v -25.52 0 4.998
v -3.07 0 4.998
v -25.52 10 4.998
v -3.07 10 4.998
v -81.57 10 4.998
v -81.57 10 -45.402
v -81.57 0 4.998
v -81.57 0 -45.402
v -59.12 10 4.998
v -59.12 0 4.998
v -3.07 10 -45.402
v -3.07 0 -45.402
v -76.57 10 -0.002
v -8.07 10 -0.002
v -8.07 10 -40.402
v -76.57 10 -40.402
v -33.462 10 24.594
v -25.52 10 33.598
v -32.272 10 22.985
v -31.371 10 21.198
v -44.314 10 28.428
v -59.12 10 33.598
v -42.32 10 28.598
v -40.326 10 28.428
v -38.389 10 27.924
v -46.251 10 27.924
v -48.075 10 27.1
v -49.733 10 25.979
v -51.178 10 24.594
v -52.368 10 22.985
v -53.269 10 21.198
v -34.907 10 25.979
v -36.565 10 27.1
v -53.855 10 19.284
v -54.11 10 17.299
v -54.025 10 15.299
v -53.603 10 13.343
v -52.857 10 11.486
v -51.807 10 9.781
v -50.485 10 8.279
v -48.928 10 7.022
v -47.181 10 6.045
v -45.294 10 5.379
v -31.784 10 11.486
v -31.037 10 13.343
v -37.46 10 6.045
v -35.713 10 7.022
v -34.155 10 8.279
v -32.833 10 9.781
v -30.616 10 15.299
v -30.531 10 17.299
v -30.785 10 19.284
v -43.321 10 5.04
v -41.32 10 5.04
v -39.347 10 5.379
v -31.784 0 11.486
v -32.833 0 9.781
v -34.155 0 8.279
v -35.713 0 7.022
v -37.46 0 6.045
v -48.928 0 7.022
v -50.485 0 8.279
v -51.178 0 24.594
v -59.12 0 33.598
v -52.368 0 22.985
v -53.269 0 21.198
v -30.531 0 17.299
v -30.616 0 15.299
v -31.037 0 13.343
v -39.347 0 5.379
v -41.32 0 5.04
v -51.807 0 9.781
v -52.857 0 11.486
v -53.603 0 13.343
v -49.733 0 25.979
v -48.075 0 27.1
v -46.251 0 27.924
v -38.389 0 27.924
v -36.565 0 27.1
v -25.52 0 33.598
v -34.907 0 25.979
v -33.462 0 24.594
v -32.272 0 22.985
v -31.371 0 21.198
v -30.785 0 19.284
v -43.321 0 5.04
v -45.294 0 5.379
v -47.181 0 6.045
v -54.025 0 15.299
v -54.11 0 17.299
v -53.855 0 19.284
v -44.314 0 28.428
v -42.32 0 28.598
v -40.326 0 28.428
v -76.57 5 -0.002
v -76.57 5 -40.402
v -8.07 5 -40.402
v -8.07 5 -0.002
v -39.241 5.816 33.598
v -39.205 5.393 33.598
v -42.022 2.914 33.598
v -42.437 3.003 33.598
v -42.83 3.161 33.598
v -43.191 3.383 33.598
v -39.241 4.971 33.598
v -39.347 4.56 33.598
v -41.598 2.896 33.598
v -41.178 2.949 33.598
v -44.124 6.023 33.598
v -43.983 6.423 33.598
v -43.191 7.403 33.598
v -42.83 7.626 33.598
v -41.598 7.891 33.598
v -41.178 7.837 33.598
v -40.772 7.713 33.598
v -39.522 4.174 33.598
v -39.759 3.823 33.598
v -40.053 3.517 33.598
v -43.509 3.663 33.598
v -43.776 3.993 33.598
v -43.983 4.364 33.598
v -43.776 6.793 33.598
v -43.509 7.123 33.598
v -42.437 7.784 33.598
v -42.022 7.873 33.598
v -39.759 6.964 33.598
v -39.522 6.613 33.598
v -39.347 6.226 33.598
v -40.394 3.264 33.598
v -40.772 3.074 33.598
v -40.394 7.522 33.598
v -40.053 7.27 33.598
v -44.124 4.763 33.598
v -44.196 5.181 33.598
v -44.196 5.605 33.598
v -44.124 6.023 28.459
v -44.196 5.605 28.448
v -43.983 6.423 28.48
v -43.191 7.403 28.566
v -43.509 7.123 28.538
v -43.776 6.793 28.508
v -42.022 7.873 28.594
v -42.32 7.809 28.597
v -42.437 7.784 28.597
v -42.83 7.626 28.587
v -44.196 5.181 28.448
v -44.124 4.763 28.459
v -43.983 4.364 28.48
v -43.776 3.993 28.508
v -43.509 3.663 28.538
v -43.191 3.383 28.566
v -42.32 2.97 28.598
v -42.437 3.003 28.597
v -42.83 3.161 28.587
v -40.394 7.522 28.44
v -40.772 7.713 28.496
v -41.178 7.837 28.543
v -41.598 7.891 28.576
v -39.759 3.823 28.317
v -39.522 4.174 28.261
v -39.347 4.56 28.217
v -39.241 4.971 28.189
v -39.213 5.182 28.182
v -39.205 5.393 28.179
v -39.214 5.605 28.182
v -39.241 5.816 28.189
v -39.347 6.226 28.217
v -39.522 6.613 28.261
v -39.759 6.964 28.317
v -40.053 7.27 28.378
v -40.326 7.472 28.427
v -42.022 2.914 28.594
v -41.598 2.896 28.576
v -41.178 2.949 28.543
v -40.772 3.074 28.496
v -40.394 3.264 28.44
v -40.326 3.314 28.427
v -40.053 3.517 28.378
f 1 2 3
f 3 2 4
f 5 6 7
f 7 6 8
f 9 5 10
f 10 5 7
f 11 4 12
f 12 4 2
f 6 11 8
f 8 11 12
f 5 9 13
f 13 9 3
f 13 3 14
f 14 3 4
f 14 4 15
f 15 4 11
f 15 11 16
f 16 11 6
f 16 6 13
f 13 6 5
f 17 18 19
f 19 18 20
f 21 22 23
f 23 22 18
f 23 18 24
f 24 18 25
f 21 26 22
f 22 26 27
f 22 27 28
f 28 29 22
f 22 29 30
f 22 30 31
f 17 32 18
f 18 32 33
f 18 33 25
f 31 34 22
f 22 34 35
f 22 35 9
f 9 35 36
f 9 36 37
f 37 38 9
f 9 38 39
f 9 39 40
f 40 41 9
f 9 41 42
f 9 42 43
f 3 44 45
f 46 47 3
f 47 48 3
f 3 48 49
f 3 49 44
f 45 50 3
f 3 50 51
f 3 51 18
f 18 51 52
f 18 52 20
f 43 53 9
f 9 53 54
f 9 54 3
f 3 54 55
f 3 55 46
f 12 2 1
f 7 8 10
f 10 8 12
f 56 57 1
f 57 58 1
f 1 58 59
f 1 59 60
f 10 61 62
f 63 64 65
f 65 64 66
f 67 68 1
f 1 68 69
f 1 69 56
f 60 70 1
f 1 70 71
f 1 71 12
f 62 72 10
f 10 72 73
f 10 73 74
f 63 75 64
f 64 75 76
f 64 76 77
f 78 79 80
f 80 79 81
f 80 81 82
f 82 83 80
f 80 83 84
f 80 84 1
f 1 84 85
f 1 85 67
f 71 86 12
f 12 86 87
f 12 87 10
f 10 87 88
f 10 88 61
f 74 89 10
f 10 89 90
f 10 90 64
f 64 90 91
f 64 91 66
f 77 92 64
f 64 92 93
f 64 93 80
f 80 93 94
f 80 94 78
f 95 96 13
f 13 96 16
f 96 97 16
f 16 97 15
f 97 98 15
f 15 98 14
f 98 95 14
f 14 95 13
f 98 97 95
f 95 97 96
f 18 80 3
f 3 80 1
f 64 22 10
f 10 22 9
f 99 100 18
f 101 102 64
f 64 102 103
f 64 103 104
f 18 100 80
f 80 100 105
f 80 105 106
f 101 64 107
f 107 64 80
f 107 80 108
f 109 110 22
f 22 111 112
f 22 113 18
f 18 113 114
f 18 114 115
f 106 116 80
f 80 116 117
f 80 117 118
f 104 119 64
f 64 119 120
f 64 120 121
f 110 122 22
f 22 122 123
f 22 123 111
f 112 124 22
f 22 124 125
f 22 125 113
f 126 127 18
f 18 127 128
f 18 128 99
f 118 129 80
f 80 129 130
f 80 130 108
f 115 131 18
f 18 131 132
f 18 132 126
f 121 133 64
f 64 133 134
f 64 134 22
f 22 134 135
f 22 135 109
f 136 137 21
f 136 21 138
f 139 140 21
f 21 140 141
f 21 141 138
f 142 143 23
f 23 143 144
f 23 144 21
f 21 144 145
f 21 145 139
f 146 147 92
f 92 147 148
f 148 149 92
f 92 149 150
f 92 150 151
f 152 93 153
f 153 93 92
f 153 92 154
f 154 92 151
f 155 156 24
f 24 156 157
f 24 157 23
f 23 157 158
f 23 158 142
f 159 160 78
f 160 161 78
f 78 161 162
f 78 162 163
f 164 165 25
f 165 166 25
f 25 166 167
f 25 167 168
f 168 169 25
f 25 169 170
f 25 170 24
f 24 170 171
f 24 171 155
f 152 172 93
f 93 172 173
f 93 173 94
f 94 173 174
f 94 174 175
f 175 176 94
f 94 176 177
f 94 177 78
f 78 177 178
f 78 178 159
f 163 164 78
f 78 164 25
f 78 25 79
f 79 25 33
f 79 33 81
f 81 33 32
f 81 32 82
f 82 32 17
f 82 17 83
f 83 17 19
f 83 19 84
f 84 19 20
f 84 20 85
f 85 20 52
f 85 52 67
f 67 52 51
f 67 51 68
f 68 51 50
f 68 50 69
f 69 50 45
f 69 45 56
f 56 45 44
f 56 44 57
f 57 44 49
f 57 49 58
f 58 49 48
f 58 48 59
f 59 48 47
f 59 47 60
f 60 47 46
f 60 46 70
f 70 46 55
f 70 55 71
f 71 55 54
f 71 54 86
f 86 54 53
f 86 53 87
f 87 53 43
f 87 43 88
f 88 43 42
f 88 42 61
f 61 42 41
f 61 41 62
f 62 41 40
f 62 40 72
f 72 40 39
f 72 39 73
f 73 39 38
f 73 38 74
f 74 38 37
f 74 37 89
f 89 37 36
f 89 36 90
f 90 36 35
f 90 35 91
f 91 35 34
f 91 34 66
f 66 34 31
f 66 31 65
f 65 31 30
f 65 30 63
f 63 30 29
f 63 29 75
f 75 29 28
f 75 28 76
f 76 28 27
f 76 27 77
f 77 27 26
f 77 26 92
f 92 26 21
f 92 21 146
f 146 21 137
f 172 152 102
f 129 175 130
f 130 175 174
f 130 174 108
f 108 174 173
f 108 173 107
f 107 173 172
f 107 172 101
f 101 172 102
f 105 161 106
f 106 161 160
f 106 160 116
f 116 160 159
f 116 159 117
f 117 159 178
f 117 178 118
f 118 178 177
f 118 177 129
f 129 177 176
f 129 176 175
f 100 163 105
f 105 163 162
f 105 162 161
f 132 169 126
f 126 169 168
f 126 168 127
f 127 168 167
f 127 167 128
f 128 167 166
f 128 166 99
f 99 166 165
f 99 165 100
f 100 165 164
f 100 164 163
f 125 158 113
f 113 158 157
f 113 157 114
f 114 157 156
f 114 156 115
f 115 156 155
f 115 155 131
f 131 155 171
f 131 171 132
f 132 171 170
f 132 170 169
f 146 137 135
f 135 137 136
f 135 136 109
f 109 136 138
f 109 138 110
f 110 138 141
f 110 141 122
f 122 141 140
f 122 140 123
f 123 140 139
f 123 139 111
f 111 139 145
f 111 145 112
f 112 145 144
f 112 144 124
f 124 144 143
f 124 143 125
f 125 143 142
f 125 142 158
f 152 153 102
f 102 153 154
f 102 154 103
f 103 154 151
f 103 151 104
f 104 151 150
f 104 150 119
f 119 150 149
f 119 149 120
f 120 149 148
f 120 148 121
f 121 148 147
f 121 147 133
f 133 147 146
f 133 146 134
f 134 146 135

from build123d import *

# Parameters (mm, degrees)
SKETCH2_W                  = 78.5
SKETCH2_H                  = 50.4
BOSS_EXTRUDE2_DEPTH        = 10
SKETCH3_W                  = 68.5
SKETCH3_H                  = 40.4
CUT_EXTRUDE1_DEPTH         = 5
SKETCH6_W                  = 33.6
SKETCH6_H                  = 33.6
SKETCH6_R                  = 11.8
BOSS_EXTRUDE4_DEPTH        = 10
M6X1_0_TAPPED_HOLE5_REACH  = 90.653
M6X1_0_TAPPED_HOLE5_BORE_R = 2.5


with BuildPart() as part:
    # Sketch2 → Boss-Extrude2 (new body)
    with BuildSketch(Plane(origin=(0, 0, 0), x_dir=(1, 0, 0), z_dir=(0, 1, 0))):
        with Locations((-42.320258308, 20.202024982)):
            Rectangle(SKETCH2_W, SKETCH2_H)
    extrude(amount=BOSS_EXTRUDE2_DEPTH)

    # Sketch3 → Cut-Extrude1 (cut)
    with BuildSketch(Plane(origin=(0, 10, 0), x_dir=(1, 0, 0), z_dir=(0, 1, 0))):
        with Locations((-42.320258308, 20.202024982)):
            Rectangle(SKETCH3_W, SKETCH3_H)
    extrude(amount=-CUT_EXTRUDE1_DEPTH, mode=Mode.SUBTRACT)

    # Sketch6 → Boss-Extrude4 (add)
    with BuildSketch(Plane(origin=(0, 10, 0), x_dir=(1, 0, 0), z_dir=(0, 1, 0))):
        with Locations((-42.320258308, -16.797975018)):
            Rectangle(SKETCH6_W, SKETCH6_H)
        with Locations(Location((-42.320258308, -16.797975018, 0), (0, 0, 270))):
            Circle(SKETCH6_R, mode=Mode.SUBTRACT)
    extrude(amount=-BOSS_EXTRUDE4_DEPTH)

    # M6x1.0 Tapped Hole5 bore (on position points) → M6x1.0 Tapped Hole5 (cut, up to next)
    with BuildSketch(Plane(origin=(-41.704543892, 5.39331072, 33.597975018), x_dir=(1, 0, 0), z_dir=(0, 0, 1)), mode=Mode.PRIVATE) as m6x1_0_tapped_hole5_sk1:
        Circle(M6X1_0_TAPPED_HOLE5_BORE_R)
    m6x1_0_tapped_hole5_tool1 = extrude(m6x1_0_tapped_hole5_sk1.sketch, amount=-M6X1_0_TAPPED_HOLE5_REACH, mode=Mode.PRIVATE) & part.part
    add(m6x1_0_tapped_hole5_tool1.solids().sort_by_distance((-41.704544, 5.393311, 33.597975))[0], mode=Mode.SUBTRACT)


solid = part.part
